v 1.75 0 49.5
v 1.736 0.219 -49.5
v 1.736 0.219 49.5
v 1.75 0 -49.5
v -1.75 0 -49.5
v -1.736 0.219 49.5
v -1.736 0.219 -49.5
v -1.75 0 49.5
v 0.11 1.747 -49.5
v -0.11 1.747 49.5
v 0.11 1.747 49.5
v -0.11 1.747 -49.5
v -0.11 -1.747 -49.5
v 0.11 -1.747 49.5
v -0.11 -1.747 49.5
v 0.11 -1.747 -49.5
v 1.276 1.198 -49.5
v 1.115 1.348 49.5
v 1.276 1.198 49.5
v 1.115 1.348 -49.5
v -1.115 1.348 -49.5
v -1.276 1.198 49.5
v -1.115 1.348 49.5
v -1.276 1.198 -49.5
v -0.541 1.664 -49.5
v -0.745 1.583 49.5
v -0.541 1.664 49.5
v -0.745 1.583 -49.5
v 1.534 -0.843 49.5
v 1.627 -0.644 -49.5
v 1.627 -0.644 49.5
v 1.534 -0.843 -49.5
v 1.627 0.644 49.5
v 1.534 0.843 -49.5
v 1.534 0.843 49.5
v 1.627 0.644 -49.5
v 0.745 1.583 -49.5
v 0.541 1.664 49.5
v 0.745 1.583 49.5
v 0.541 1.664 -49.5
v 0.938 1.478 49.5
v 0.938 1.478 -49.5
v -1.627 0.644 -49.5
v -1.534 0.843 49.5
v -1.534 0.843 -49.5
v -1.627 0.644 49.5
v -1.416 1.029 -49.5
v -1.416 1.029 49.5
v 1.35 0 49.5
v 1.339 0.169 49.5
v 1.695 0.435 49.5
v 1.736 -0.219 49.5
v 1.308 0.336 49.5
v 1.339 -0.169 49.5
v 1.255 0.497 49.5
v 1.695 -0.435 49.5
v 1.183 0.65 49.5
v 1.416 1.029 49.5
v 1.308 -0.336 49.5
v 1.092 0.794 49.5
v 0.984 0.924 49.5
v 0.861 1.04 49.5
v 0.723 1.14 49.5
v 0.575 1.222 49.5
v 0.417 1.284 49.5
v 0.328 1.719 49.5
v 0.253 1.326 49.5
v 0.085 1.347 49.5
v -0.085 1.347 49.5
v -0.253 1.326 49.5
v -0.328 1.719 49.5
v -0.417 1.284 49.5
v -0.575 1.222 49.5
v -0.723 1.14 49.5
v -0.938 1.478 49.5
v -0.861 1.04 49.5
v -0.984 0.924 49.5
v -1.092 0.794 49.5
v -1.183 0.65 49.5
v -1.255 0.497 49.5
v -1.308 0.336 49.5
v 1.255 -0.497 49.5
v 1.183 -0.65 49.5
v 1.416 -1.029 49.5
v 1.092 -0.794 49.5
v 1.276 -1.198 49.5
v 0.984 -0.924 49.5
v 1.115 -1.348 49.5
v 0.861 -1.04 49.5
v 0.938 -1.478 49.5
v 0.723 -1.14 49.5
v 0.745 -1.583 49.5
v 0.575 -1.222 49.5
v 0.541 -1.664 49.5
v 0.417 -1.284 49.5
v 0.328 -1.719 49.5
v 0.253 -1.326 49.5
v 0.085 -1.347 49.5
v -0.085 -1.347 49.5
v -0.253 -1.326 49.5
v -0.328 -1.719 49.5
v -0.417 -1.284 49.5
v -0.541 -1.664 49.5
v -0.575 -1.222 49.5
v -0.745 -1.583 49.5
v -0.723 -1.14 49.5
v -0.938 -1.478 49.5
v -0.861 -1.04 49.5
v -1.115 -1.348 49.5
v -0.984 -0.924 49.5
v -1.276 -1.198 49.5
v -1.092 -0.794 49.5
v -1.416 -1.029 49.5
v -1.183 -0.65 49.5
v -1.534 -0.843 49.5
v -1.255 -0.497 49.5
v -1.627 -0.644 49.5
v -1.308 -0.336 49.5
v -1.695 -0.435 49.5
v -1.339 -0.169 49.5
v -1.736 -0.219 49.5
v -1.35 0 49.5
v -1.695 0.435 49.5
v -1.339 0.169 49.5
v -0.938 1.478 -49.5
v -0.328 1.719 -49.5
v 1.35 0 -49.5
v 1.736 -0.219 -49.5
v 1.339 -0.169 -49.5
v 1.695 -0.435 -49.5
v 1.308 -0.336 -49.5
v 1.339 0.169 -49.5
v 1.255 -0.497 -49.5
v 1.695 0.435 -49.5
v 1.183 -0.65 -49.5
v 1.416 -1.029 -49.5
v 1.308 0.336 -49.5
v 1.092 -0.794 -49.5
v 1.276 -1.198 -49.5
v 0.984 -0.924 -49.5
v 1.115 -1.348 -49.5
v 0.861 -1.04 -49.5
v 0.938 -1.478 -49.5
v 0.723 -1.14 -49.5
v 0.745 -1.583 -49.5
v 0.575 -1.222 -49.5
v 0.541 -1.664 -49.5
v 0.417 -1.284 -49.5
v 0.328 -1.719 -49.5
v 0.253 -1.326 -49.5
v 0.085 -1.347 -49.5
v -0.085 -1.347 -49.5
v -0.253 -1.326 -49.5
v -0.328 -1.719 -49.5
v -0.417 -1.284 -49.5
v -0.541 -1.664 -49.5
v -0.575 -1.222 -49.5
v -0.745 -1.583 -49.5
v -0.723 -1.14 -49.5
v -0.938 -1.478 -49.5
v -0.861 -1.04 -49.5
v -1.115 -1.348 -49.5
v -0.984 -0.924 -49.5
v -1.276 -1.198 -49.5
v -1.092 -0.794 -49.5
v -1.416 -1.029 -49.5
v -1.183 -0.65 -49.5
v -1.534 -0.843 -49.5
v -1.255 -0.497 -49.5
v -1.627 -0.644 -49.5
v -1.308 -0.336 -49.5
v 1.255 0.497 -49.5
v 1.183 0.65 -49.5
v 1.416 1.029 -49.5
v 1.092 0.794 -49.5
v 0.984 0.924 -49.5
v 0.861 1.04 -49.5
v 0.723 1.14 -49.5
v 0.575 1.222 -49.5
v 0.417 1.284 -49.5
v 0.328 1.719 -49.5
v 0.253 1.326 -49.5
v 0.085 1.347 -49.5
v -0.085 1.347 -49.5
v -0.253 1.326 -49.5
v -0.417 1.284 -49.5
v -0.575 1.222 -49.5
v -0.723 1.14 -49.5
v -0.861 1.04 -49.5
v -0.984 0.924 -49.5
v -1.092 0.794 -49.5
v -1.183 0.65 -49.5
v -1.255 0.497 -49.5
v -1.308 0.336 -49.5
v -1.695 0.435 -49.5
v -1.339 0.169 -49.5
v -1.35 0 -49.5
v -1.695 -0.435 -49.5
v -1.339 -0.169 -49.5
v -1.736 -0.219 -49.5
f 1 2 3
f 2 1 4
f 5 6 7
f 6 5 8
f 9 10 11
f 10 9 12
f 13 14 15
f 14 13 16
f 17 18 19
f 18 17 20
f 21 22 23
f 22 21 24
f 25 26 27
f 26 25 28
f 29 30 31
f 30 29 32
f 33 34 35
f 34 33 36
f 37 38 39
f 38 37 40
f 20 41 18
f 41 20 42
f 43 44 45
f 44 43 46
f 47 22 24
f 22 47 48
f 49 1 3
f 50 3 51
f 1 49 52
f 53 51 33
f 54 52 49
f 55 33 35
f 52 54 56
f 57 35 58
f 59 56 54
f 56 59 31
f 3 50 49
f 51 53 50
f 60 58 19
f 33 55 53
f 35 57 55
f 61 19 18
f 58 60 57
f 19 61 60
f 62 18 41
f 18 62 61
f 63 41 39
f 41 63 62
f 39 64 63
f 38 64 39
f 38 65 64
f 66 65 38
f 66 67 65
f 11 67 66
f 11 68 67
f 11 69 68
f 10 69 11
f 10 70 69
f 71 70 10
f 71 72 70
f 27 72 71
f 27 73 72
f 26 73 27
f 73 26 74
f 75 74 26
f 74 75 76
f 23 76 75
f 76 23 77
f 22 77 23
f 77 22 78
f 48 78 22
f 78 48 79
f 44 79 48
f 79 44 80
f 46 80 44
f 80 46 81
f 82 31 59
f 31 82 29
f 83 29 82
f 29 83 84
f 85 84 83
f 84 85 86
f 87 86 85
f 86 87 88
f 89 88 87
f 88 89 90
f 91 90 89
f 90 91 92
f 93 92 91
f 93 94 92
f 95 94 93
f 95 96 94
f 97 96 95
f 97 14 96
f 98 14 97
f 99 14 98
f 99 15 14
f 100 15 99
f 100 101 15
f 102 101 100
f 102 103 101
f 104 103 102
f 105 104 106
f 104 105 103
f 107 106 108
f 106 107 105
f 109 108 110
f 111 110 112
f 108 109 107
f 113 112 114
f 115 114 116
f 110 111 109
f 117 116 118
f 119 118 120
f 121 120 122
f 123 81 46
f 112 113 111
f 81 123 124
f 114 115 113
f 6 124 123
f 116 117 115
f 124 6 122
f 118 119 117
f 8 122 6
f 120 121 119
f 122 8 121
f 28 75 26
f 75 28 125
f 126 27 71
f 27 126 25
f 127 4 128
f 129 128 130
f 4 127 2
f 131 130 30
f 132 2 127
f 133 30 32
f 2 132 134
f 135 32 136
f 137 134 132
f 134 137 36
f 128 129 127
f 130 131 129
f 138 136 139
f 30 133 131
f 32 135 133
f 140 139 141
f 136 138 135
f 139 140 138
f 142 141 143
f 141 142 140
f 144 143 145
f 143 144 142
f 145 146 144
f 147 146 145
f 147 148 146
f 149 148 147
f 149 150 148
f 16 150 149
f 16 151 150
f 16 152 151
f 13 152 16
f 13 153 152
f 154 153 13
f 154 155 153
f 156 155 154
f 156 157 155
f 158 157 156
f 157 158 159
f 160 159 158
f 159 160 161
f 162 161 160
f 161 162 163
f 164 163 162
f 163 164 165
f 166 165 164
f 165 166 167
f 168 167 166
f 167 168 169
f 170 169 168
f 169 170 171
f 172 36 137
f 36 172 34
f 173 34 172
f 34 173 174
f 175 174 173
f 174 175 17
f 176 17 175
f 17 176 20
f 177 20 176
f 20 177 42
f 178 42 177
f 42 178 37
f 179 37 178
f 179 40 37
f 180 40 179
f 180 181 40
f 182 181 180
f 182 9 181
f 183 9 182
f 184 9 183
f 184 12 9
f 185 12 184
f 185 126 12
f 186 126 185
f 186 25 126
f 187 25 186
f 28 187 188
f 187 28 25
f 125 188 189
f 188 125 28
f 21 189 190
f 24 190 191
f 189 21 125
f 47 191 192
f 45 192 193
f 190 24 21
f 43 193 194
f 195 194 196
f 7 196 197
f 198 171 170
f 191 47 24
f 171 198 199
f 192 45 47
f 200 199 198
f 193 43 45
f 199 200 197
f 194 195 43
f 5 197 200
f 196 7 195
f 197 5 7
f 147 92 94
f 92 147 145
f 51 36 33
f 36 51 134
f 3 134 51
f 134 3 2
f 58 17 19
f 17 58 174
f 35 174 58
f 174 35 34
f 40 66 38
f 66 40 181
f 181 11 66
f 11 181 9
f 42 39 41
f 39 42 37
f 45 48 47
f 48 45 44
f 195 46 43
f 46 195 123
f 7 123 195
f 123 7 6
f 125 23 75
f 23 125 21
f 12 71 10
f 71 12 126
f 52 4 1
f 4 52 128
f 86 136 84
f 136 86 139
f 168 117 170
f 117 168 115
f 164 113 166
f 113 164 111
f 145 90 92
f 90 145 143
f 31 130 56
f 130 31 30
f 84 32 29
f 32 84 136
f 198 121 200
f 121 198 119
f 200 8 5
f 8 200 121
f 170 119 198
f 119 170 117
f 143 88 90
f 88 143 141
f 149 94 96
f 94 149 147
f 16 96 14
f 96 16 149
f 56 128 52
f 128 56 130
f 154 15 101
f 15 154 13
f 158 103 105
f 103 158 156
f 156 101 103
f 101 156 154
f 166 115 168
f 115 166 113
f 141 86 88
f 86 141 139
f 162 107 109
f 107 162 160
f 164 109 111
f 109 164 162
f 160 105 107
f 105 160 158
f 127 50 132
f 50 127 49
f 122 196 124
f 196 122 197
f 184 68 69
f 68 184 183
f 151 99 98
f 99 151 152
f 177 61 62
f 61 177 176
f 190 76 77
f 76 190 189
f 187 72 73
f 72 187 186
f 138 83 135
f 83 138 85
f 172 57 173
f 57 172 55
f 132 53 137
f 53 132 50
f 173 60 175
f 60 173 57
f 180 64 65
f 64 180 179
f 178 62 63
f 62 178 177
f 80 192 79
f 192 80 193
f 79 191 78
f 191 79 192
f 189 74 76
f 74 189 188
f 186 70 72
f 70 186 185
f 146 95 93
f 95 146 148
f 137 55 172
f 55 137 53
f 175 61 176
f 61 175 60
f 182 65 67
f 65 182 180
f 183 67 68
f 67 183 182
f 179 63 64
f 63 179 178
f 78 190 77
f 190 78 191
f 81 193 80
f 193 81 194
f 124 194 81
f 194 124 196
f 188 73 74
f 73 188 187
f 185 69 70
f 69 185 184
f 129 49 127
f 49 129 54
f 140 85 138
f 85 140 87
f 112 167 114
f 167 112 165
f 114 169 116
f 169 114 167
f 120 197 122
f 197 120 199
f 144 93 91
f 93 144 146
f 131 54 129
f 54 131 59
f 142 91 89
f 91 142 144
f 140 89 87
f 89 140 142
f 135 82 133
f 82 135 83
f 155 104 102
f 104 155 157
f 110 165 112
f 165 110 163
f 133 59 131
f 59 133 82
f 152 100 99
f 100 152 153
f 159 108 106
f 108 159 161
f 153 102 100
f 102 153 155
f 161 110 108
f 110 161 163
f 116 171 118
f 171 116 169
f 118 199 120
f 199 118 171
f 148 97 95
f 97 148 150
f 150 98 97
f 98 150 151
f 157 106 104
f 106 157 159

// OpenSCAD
$fn = 50;


difference() {
	union() {
		translate(v = [0, 0, -49.5000000000]) {
			cylinder(h = 99, r = 1.7500000000);
		}
	}
	union() {
		translate(v = [0, 0, -100.0000000000]) {
			cylinder(h = 200, r = 1.3500000000);
		}
	}
}
